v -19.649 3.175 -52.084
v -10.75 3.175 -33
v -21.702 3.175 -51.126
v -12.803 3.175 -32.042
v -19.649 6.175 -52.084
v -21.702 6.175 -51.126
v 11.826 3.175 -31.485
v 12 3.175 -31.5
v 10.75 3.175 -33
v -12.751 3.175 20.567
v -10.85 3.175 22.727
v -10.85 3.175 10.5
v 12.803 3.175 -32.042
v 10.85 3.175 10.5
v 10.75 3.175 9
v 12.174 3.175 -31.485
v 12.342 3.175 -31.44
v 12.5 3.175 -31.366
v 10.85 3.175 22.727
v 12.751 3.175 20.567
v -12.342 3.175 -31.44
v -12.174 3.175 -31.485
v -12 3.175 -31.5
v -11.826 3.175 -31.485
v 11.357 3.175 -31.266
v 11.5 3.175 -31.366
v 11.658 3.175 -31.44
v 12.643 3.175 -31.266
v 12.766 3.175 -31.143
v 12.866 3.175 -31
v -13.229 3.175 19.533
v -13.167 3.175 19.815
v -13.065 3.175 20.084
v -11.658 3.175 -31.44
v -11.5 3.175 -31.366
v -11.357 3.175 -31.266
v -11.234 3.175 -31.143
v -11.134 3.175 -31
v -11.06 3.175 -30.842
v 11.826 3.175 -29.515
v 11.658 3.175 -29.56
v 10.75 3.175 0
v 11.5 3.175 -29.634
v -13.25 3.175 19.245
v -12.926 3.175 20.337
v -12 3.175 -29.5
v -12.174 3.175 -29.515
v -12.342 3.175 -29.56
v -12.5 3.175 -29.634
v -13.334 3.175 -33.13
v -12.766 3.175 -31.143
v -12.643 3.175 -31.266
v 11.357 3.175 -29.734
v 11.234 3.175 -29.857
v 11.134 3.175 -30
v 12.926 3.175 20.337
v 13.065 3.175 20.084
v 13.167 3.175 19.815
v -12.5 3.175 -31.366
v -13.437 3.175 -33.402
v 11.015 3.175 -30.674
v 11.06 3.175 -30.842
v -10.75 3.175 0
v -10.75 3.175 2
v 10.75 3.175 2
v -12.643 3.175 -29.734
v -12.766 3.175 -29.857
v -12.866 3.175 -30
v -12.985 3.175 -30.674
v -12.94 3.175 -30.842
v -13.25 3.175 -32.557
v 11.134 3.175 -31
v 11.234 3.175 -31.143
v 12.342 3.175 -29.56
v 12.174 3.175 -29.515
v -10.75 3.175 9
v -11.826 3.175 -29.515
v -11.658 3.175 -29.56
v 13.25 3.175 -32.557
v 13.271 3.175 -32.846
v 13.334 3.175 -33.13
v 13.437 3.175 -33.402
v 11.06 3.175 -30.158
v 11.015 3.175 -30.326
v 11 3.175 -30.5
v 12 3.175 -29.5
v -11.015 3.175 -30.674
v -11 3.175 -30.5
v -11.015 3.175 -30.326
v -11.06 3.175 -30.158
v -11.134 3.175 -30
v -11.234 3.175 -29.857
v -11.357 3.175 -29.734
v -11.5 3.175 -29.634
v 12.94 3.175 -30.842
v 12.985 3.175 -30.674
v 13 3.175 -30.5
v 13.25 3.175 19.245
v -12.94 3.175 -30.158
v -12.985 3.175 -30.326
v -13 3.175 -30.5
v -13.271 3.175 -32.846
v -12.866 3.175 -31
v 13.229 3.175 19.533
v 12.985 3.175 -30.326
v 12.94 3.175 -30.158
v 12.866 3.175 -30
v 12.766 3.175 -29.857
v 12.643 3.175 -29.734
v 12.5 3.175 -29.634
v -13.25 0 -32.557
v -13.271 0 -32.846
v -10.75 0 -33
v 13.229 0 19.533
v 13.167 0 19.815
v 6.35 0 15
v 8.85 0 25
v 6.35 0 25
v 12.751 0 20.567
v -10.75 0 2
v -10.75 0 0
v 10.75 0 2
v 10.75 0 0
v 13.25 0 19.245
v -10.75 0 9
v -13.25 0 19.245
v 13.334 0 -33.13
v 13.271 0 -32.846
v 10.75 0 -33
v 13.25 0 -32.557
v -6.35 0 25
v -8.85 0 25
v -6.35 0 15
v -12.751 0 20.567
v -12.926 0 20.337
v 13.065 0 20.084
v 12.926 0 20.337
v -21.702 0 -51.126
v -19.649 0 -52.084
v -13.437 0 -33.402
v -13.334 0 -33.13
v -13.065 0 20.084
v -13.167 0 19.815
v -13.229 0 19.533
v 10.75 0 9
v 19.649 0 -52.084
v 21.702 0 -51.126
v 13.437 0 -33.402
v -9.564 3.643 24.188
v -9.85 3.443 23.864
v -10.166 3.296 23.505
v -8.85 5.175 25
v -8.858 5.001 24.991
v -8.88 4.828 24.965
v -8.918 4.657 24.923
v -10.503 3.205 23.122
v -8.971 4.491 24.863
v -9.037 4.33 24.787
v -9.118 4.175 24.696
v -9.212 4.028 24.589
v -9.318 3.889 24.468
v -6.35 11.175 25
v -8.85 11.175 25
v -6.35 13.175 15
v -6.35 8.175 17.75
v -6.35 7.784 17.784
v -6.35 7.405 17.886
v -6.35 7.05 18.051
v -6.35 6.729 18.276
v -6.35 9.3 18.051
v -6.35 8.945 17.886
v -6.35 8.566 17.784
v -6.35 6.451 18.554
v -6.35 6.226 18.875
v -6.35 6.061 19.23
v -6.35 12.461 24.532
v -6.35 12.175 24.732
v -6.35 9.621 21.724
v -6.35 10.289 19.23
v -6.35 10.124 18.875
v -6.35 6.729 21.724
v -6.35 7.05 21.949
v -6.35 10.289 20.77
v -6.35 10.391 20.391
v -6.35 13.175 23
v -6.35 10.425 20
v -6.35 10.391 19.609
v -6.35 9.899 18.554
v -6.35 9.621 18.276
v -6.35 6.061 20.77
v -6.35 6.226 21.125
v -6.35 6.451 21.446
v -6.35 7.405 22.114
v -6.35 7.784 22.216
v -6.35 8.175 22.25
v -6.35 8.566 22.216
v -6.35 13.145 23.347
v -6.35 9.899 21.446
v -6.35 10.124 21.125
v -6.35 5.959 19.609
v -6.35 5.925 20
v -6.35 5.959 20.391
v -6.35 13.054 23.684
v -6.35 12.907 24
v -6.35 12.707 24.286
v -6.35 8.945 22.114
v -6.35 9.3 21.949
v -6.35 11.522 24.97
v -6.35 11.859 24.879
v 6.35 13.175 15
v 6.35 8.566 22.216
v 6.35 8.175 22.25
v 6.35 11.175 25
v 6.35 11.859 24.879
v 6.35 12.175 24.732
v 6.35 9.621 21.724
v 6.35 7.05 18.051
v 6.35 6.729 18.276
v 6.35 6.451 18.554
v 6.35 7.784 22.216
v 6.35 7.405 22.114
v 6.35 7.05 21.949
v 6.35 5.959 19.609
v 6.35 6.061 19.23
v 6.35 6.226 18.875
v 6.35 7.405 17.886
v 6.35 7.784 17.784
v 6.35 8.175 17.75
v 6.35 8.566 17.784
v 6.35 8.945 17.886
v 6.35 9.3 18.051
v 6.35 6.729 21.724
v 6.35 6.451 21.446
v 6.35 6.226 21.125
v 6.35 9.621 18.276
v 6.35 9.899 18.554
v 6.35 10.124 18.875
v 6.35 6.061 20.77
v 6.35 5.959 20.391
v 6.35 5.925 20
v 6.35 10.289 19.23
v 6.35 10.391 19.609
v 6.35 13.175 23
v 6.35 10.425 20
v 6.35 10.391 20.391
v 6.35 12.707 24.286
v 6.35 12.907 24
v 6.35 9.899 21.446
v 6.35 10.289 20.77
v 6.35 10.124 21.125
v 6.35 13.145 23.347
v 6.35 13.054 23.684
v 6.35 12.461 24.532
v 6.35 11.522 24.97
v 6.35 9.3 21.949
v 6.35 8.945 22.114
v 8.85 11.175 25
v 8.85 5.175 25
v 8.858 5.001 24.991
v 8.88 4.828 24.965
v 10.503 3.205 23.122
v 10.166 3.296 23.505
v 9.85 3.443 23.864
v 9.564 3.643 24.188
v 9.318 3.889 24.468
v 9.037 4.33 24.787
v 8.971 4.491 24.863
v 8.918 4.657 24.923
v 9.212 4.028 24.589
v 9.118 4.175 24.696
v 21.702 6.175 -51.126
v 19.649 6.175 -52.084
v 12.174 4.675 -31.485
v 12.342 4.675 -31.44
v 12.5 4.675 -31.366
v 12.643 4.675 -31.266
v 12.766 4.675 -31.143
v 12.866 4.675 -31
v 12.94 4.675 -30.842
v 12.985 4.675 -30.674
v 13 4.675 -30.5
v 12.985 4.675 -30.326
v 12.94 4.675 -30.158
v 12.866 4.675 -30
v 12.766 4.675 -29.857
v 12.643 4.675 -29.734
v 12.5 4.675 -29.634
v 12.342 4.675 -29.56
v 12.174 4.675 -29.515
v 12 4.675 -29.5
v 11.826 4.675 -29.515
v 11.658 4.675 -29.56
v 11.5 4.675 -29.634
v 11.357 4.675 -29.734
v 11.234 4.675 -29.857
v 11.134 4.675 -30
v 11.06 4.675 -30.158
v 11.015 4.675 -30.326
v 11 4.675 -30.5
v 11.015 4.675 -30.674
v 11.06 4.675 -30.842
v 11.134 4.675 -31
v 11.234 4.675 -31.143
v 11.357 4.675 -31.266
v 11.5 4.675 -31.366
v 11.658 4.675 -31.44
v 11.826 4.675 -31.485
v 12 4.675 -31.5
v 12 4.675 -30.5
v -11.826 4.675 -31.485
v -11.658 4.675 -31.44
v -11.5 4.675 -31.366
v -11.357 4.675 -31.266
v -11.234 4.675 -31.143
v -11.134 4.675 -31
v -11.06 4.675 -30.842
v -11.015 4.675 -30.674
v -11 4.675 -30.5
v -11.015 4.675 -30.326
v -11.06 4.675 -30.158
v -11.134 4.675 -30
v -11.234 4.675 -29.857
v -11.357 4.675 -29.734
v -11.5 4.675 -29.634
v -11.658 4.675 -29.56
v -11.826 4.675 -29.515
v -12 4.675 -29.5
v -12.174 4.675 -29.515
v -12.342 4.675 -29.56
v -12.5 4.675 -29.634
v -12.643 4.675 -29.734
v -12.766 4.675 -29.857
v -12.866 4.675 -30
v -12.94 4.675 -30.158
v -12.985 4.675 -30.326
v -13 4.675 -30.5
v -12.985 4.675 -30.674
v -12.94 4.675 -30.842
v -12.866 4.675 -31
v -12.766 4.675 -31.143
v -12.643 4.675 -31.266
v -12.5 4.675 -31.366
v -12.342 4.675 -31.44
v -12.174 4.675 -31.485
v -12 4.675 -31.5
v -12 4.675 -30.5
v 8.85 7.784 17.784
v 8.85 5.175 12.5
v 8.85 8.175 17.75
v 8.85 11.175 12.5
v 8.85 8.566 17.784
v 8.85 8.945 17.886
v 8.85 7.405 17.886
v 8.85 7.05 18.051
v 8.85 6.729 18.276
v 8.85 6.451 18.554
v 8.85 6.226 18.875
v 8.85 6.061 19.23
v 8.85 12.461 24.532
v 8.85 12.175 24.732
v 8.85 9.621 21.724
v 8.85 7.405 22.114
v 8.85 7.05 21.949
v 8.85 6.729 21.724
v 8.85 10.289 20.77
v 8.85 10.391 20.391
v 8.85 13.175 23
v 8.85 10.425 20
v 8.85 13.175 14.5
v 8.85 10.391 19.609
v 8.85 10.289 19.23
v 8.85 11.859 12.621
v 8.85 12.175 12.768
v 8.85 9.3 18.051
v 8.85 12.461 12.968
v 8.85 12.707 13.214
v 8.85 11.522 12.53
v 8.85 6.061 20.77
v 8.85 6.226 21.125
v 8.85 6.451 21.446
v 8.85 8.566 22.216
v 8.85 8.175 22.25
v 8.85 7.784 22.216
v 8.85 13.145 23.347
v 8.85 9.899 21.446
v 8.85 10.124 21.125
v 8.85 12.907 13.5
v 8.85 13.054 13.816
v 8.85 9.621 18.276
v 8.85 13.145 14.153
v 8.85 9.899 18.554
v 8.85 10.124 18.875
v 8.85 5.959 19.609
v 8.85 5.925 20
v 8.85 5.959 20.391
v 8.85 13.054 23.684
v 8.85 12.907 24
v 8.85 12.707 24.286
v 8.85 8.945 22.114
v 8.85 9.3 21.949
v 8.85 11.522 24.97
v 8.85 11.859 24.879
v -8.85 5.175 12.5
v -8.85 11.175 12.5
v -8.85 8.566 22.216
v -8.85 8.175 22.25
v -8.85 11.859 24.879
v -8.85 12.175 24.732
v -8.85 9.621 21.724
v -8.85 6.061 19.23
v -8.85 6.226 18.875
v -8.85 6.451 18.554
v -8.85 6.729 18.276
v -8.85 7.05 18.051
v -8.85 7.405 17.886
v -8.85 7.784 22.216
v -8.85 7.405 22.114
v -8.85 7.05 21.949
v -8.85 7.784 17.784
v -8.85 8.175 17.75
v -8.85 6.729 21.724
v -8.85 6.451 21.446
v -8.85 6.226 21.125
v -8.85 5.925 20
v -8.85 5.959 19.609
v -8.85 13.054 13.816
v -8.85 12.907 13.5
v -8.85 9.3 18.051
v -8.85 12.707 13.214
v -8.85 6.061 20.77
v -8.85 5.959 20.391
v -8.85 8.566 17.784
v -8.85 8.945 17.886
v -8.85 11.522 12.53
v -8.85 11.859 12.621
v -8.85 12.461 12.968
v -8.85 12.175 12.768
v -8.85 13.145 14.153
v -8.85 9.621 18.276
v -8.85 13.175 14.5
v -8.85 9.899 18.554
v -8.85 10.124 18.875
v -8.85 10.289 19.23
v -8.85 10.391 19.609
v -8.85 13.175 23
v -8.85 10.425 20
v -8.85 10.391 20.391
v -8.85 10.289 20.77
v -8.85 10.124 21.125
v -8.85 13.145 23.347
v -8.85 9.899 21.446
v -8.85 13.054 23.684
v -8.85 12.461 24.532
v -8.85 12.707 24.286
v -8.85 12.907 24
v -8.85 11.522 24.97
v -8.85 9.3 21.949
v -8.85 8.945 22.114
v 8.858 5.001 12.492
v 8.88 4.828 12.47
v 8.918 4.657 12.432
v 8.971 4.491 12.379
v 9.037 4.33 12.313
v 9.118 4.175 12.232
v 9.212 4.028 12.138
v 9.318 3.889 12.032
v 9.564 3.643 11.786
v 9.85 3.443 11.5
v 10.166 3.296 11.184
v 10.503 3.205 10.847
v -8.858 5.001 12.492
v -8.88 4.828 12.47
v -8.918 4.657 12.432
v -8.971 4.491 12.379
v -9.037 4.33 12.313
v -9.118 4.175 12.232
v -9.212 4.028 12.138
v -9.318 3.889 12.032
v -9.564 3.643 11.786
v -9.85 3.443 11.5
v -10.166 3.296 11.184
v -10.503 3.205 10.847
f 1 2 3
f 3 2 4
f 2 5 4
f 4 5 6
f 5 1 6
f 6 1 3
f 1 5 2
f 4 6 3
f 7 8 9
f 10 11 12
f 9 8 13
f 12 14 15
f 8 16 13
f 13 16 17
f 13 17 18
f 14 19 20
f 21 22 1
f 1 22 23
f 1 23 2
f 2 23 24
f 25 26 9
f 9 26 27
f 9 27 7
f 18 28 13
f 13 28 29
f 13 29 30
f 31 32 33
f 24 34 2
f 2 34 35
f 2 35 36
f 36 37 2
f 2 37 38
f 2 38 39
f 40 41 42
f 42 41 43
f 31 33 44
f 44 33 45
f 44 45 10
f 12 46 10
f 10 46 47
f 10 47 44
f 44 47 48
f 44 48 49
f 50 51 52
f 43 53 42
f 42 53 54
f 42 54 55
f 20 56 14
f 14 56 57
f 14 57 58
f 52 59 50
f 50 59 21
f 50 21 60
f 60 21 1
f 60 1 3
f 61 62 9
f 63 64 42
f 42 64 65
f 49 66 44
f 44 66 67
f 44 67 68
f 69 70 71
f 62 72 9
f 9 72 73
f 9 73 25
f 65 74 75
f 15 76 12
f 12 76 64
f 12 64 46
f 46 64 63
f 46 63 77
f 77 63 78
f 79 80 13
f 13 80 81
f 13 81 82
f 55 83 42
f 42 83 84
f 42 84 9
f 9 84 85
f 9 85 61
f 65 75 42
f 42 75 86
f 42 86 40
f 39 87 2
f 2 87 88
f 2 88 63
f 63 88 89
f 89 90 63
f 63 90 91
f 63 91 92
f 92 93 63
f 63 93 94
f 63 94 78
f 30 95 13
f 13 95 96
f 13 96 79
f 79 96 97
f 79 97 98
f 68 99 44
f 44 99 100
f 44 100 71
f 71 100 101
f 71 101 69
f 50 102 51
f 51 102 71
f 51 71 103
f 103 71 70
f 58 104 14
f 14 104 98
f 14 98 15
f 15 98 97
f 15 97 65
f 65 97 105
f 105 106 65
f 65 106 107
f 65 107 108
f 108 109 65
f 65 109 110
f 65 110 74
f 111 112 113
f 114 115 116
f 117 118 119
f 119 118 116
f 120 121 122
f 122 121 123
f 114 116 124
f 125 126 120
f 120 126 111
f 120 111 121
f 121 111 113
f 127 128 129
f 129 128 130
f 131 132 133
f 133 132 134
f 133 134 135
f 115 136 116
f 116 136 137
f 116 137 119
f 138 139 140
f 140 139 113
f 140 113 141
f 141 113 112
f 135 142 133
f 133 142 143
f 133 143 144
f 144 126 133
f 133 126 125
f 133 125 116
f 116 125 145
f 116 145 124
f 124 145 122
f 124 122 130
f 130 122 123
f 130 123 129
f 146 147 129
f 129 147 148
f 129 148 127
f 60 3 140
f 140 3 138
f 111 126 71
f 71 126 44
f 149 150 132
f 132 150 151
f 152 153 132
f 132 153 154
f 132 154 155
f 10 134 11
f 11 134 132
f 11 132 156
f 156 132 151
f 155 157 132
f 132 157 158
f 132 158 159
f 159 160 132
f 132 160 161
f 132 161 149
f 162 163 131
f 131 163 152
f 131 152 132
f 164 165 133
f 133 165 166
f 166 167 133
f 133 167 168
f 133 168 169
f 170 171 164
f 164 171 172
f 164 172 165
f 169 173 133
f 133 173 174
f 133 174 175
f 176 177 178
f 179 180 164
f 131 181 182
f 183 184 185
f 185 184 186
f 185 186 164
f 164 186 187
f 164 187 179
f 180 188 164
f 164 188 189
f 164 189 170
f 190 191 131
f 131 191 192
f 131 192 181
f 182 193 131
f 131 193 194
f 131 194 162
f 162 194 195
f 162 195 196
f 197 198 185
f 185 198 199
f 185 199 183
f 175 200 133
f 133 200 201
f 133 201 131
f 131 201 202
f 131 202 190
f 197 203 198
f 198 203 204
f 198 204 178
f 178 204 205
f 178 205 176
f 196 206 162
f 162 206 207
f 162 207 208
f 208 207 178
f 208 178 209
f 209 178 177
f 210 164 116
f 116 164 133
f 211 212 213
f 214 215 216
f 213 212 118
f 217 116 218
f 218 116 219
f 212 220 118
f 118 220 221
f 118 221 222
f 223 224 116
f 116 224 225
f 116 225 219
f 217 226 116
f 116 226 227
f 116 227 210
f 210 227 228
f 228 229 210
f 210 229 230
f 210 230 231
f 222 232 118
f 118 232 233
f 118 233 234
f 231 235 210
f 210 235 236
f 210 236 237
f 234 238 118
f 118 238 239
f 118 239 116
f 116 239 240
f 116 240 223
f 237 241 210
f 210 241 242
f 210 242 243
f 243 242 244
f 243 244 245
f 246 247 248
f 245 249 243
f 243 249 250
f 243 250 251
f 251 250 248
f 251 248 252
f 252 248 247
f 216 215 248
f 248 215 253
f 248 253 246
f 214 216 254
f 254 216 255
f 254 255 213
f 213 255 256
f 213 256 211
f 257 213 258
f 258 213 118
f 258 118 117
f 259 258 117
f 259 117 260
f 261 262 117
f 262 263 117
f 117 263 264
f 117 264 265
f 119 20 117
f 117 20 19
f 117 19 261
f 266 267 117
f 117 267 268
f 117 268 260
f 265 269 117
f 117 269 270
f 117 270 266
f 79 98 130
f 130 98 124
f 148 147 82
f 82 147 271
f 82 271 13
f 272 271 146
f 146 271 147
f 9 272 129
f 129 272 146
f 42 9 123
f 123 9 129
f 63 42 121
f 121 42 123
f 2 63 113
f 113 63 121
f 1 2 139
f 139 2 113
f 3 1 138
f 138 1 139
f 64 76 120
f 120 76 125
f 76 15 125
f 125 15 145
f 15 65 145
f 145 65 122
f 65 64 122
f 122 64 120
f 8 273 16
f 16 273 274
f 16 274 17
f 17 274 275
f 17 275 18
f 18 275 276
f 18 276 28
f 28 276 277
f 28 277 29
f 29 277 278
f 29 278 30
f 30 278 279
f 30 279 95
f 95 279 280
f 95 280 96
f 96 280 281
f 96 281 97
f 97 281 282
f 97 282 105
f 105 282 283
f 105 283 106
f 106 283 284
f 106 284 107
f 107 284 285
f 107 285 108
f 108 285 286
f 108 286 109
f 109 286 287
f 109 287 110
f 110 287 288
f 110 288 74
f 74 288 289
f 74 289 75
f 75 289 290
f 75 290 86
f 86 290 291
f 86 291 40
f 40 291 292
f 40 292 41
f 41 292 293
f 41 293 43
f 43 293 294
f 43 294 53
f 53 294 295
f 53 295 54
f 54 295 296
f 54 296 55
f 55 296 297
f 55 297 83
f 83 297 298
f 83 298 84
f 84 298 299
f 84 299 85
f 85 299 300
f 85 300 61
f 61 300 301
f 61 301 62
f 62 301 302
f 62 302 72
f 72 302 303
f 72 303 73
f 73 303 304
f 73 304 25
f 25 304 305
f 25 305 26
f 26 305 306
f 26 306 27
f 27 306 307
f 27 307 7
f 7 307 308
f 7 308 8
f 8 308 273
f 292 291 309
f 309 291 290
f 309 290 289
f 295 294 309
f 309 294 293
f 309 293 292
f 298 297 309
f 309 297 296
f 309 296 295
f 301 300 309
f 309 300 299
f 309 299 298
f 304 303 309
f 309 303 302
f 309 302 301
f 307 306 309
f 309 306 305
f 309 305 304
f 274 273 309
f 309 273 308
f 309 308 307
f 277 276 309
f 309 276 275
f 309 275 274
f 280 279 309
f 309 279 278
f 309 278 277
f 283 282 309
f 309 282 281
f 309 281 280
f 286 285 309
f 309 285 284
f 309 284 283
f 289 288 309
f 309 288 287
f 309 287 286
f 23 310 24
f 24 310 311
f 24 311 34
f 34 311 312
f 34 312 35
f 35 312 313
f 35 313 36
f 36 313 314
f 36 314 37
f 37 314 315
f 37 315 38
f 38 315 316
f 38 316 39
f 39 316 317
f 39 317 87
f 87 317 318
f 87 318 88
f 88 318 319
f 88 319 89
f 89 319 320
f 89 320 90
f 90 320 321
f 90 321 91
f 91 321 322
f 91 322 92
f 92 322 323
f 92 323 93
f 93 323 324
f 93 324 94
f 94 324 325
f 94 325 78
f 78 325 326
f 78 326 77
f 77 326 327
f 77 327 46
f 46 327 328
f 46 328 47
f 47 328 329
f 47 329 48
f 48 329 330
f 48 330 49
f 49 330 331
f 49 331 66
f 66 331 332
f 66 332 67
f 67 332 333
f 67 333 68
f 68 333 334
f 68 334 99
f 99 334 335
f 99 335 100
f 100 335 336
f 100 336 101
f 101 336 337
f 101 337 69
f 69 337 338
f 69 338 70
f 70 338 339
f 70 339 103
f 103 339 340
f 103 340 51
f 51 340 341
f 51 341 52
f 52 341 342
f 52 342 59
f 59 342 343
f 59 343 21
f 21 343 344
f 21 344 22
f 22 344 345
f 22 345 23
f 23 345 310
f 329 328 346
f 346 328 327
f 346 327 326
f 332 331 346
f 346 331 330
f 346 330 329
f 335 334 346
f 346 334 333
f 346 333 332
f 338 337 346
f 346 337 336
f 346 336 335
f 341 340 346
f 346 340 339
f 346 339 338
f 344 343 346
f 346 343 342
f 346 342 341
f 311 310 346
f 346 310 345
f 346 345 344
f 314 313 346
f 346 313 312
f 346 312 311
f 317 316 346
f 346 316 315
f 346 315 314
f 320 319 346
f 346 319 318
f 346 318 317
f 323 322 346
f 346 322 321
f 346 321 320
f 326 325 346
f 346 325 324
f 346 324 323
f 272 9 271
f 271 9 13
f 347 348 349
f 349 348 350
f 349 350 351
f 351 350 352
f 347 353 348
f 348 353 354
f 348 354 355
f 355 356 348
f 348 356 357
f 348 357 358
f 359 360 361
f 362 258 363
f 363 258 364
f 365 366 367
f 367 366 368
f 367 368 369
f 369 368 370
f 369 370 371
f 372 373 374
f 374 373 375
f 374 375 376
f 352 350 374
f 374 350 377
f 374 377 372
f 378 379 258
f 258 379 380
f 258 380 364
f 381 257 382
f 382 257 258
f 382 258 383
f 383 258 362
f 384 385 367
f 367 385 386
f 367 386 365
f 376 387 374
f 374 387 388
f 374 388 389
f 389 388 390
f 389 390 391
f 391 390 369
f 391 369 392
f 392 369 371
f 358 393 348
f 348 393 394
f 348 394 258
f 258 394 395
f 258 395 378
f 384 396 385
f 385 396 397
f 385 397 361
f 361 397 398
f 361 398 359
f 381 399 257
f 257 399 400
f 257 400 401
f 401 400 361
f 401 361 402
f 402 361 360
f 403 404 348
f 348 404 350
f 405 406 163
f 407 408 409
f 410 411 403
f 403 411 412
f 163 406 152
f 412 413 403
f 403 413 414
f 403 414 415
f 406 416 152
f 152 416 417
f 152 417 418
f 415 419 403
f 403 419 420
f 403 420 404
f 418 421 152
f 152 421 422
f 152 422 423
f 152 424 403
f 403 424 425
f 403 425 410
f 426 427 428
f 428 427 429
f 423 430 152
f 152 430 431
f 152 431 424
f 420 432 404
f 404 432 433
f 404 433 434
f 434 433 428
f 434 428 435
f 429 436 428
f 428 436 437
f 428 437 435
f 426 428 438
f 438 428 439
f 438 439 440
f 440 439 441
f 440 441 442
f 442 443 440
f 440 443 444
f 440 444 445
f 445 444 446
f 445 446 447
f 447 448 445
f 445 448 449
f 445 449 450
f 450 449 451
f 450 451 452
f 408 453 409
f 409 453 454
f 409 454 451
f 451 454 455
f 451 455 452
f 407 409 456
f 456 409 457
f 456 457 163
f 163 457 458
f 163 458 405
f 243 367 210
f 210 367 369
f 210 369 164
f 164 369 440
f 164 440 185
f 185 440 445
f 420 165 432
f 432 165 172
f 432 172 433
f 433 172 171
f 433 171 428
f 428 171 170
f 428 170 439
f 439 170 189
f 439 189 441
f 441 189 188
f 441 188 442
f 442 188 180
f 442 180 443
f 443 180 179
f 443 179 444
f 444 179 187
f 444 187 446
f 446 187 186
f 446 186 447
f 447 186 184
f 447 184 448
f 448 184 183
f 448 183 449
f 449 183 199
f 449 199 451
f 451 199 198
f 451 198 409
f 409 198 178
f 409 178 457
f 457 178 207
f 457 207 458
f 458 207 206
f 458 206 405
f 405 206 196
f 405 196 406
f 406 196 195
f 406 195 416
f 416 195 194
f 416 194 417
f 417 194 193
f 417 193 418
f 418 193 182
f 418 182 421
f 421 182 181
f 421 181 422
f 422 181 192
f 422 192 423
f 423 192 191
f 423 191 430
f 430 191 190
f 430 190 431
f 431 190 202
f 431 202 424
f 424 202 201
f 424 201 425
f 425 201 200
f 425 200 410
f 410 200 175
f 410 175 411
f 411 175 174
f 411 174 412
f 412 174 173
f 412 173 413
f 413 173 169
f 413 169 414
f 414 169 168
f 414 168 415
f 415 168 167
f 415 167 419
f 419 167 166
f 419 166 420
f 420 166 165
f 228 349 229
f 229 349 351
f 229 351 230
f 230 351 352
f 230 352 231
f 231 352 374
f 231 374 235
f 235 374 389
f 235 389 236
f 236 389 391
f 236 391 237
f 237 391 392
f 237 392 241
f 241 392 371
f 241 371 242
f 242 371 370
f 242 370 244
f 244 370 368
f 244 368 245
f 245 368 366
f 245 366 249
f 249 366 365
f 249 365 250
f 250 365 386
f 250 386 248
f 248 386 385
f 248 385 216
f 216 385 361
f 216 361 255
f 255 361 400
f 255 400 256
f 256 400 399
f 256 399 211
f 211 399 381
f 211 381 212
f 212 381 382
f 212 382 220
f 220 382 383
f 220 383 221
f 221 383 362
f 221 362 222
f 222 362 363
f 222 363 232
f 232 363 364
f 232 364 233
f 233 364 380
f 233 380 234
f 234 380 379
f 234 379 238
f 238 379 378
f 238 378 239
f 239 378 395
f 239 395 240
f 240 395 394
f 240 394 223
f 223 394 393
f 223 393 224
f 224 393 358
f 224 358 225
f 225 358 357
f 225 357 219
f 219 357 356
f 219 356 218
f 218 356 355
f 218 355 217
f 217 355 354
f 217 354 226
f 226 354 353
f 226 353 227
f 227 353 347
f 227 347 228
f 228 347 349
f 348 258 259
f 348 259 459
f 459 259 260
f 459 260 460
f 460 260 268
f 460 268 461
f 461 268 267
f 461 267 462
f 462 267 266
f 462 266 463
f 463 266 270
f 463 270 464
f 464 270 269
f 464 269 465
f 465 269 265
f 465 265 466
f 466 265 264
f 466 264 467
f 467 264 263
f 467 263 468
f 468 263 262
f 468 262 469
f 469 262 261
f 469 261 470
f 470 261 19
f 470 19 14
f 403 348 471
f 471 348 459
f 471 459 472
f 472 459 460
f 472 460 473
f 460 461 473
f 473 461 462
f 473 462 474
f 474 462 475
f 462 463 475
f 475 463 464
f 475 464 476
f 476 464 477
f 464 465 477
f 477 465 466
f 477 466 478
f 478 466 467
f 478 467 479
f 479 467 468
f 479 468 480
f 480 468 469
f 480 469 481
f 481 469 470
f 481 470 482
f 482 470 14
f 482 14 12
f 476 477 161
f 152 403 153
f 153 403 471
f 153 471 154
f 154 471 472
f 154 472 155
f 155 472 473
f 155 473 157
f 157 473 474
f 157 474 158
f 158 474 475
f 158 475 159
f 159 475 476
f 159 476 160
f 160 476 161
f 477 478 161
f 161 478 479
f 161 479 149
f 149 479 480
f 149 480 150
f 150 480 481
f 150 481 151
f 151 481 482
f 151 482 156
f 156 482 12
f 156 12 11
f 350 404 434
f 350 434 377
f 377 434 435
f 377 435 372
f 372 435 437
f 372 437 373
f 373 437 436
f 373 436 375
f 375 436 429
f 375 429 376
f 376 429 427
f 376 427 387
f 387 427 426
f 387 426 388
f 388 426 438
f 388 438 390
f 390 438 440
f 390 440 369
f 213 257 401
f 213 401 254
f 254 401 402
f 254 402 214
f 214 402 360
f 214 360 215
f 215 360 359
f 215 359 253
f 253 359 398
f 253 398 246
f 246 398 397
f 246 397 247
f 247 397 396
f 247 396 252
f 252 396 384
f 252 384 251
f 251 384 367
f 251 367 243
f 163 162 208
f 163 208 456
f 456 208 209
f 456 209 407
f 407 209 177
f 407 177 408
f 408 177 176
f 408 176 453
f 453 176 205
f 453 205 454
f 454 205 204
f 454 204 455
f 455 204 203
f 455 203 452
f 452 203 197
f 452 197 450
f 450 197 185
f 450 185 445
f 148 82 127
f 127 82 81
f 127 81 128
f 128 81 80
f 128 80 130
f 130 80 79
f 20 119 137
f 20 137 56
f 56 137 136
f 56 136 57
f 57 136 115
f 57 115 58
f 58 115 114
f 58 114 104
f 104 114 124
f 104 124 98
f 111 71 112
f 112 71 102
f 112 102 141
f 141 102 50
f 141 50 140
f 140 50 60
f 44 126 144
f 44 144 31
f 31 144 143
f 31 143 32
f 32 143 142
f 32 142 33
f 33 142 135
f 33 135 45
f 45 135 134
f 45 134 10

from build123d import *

# Parameters (mm, degrees)
SKETCH1_W           = 21.5
SKETCH1_H           = 7.000000000000002
BOSS_EXTRUDE1_DEPTH = 3.175
SKETCH5_R           = 1.0000000000000018
BOSS_EXTRUDE4_DEPTH = 1.5
BOSS_EXTRUDE2_DEPTH = 2.265769468
BOSS_EXTRUDE3_DEPTH = 10
SKETCH4_R           = 2.250000000000002
CUT_EXTRUDE1_DEPTH  = 62.804050261181395
FILLET1_R           = 2


with BuildPart() as part:
    # Sketch1 → Boss-Extrude1 (new body)
    with BuildSketch(Plane(origin=(0, 0, 0), x_dir=(1, 0, 0), z_dir=(0, 1, 0))):
        Polygon((10.75, 0), (10.750000000000005, 33), (19.64888072270585, 52.0837112946317), (21.702365234814028, 51.126155740732976), (13.250000000000009, 33), (13.250000000000002, -20), (8.85, -25), (6.3500000000000005, -25), (6.3500000000000005, -15), (-6.3500000000000005, -15), (-6.3500000000000005, -25), (-8.85, -25), (-13.250000000000002, -20), (-13.250000000000009, 33), (-21.702365234814028, 51.126155740732976), (-19.64888072270585, 52.0837112946317), (-10.750000000000005, 33), (-10.75, 0), align=None)
        with Locations((0, -5.500000000000001)):
            Rectangle(SKETCH1_W, SKETCH1_H, mode=Mode.SUBTRACT)
    extrude(amount=BOSS_EXTRUDE1_DEPTH)

    # Sketch5 → Boss-Extrude4 (add)
    with BuildSketch(Plane(origin=(0, 3.175, 0), x_dir=(1, 0, 0), z_dir=(0, 1, 0))):
        with Locations(Location((12.000000000000007, 30.500000000000004, 0), (0, 0, 90))):
            Circle(SKETCH5_R)
    boss_extrude4 = extrude(amount=BOSS_EXTRUDE4_DEPTH)


with BuildPart() as body_2:
    # Sketch2 → Boss-Extrude2 (new body)
    with BuildSketch(Plane(origin=(3.8097499093980356, 0, -1.776515558407624), x_dir=(-0.42261826174070105, 0, -0.9063077870366492), z_dir=(0.9063077870366493, 0, -0.4226182617407011))):
        Polygon((34.451303285921966, 3.175), (55.50784894027372, 6.175), (55.50784894027372, 3.175), align=None)
    boss_extrude2 = extrude(amount=-BOSS_EXTRUDE2_DEPTH)


with BuildPart() as part_1:
    add(part.part)

    # Mirror4: Boss-Extrude4, Boss-Extrude2 across plane
    add(boss_extrude4.mirror(Plane(origin=(0, 0, 0), x_dir=(0, 0, 1), z_dir=(1, 0, 0))))
    add(boss_extrude2.mirror(Plane(origin=(0, 0, 0), x_dir=(0, 0, 1), z_dir=(1, 0, 0))))

    # Sketch3 → Boss-Extrude3 (add)
    with BuildSketch(Plane(origin=(0, 3.175, 0), x_dir=(1, 0, 0), z_dir=(0, 1, 0))):
        Polygon((-6.350000000000001, -15), (6.350000000000001, -15), (6.3500000000000005, -25), (8.850000000000003, -25), (8.850000000000003, -15), (8.850000000000003, -12.499999999999996), (-8.850000000000003, -12.499999999999996), (-8.850000000000003, -15), (-8.850000000000003, -25), (-6.3500000000000005, -25), align=None)
    extrude(amount=BOSS_EXTRUDE3_DEPTH)

    # Sketch4 → Cut-Extrude1 (cut, through all)
    with BuildSketch(Plane(origin=(8.850000000000003, 0, 0), x_dir=(0, 0, -1), z_dir=(1, 0, 0))):
        with Locations((-19.999999999999982, 8.175)):
            Circle(SKETCH4_R)
    extrude(amount=-CUT_EXTRUDE1_DEPTH, mode=Mode.SUBTRACT)

    # Fillet1
    fillet1_edges = [part_1.edges().sort_by_distance(p)[0] for p in [
        (13.250000000000009, 1.5875, -33),
        (13.250000000000002, 1.5875, 20),
        (-13.250000000000002, 1.5875, 20),
        (-13.250000000000009, 1.5875, -33),
        (8.850000000000003, 3.175, 18.75),
        (0, 3.175, 12.499999999999996),
        (-8.850000000000003, 3.175, 18.75),
        (0, 13.175, 12.499999999999996),
        (-7.600000000000001, 13.175, 25),
        (7.600000000000001, 13.175, 25),
    ]]
    fillet(fillet1_edges, radius=FILLET1_R)


solid = Compound([body_2.part, part_1.part])
